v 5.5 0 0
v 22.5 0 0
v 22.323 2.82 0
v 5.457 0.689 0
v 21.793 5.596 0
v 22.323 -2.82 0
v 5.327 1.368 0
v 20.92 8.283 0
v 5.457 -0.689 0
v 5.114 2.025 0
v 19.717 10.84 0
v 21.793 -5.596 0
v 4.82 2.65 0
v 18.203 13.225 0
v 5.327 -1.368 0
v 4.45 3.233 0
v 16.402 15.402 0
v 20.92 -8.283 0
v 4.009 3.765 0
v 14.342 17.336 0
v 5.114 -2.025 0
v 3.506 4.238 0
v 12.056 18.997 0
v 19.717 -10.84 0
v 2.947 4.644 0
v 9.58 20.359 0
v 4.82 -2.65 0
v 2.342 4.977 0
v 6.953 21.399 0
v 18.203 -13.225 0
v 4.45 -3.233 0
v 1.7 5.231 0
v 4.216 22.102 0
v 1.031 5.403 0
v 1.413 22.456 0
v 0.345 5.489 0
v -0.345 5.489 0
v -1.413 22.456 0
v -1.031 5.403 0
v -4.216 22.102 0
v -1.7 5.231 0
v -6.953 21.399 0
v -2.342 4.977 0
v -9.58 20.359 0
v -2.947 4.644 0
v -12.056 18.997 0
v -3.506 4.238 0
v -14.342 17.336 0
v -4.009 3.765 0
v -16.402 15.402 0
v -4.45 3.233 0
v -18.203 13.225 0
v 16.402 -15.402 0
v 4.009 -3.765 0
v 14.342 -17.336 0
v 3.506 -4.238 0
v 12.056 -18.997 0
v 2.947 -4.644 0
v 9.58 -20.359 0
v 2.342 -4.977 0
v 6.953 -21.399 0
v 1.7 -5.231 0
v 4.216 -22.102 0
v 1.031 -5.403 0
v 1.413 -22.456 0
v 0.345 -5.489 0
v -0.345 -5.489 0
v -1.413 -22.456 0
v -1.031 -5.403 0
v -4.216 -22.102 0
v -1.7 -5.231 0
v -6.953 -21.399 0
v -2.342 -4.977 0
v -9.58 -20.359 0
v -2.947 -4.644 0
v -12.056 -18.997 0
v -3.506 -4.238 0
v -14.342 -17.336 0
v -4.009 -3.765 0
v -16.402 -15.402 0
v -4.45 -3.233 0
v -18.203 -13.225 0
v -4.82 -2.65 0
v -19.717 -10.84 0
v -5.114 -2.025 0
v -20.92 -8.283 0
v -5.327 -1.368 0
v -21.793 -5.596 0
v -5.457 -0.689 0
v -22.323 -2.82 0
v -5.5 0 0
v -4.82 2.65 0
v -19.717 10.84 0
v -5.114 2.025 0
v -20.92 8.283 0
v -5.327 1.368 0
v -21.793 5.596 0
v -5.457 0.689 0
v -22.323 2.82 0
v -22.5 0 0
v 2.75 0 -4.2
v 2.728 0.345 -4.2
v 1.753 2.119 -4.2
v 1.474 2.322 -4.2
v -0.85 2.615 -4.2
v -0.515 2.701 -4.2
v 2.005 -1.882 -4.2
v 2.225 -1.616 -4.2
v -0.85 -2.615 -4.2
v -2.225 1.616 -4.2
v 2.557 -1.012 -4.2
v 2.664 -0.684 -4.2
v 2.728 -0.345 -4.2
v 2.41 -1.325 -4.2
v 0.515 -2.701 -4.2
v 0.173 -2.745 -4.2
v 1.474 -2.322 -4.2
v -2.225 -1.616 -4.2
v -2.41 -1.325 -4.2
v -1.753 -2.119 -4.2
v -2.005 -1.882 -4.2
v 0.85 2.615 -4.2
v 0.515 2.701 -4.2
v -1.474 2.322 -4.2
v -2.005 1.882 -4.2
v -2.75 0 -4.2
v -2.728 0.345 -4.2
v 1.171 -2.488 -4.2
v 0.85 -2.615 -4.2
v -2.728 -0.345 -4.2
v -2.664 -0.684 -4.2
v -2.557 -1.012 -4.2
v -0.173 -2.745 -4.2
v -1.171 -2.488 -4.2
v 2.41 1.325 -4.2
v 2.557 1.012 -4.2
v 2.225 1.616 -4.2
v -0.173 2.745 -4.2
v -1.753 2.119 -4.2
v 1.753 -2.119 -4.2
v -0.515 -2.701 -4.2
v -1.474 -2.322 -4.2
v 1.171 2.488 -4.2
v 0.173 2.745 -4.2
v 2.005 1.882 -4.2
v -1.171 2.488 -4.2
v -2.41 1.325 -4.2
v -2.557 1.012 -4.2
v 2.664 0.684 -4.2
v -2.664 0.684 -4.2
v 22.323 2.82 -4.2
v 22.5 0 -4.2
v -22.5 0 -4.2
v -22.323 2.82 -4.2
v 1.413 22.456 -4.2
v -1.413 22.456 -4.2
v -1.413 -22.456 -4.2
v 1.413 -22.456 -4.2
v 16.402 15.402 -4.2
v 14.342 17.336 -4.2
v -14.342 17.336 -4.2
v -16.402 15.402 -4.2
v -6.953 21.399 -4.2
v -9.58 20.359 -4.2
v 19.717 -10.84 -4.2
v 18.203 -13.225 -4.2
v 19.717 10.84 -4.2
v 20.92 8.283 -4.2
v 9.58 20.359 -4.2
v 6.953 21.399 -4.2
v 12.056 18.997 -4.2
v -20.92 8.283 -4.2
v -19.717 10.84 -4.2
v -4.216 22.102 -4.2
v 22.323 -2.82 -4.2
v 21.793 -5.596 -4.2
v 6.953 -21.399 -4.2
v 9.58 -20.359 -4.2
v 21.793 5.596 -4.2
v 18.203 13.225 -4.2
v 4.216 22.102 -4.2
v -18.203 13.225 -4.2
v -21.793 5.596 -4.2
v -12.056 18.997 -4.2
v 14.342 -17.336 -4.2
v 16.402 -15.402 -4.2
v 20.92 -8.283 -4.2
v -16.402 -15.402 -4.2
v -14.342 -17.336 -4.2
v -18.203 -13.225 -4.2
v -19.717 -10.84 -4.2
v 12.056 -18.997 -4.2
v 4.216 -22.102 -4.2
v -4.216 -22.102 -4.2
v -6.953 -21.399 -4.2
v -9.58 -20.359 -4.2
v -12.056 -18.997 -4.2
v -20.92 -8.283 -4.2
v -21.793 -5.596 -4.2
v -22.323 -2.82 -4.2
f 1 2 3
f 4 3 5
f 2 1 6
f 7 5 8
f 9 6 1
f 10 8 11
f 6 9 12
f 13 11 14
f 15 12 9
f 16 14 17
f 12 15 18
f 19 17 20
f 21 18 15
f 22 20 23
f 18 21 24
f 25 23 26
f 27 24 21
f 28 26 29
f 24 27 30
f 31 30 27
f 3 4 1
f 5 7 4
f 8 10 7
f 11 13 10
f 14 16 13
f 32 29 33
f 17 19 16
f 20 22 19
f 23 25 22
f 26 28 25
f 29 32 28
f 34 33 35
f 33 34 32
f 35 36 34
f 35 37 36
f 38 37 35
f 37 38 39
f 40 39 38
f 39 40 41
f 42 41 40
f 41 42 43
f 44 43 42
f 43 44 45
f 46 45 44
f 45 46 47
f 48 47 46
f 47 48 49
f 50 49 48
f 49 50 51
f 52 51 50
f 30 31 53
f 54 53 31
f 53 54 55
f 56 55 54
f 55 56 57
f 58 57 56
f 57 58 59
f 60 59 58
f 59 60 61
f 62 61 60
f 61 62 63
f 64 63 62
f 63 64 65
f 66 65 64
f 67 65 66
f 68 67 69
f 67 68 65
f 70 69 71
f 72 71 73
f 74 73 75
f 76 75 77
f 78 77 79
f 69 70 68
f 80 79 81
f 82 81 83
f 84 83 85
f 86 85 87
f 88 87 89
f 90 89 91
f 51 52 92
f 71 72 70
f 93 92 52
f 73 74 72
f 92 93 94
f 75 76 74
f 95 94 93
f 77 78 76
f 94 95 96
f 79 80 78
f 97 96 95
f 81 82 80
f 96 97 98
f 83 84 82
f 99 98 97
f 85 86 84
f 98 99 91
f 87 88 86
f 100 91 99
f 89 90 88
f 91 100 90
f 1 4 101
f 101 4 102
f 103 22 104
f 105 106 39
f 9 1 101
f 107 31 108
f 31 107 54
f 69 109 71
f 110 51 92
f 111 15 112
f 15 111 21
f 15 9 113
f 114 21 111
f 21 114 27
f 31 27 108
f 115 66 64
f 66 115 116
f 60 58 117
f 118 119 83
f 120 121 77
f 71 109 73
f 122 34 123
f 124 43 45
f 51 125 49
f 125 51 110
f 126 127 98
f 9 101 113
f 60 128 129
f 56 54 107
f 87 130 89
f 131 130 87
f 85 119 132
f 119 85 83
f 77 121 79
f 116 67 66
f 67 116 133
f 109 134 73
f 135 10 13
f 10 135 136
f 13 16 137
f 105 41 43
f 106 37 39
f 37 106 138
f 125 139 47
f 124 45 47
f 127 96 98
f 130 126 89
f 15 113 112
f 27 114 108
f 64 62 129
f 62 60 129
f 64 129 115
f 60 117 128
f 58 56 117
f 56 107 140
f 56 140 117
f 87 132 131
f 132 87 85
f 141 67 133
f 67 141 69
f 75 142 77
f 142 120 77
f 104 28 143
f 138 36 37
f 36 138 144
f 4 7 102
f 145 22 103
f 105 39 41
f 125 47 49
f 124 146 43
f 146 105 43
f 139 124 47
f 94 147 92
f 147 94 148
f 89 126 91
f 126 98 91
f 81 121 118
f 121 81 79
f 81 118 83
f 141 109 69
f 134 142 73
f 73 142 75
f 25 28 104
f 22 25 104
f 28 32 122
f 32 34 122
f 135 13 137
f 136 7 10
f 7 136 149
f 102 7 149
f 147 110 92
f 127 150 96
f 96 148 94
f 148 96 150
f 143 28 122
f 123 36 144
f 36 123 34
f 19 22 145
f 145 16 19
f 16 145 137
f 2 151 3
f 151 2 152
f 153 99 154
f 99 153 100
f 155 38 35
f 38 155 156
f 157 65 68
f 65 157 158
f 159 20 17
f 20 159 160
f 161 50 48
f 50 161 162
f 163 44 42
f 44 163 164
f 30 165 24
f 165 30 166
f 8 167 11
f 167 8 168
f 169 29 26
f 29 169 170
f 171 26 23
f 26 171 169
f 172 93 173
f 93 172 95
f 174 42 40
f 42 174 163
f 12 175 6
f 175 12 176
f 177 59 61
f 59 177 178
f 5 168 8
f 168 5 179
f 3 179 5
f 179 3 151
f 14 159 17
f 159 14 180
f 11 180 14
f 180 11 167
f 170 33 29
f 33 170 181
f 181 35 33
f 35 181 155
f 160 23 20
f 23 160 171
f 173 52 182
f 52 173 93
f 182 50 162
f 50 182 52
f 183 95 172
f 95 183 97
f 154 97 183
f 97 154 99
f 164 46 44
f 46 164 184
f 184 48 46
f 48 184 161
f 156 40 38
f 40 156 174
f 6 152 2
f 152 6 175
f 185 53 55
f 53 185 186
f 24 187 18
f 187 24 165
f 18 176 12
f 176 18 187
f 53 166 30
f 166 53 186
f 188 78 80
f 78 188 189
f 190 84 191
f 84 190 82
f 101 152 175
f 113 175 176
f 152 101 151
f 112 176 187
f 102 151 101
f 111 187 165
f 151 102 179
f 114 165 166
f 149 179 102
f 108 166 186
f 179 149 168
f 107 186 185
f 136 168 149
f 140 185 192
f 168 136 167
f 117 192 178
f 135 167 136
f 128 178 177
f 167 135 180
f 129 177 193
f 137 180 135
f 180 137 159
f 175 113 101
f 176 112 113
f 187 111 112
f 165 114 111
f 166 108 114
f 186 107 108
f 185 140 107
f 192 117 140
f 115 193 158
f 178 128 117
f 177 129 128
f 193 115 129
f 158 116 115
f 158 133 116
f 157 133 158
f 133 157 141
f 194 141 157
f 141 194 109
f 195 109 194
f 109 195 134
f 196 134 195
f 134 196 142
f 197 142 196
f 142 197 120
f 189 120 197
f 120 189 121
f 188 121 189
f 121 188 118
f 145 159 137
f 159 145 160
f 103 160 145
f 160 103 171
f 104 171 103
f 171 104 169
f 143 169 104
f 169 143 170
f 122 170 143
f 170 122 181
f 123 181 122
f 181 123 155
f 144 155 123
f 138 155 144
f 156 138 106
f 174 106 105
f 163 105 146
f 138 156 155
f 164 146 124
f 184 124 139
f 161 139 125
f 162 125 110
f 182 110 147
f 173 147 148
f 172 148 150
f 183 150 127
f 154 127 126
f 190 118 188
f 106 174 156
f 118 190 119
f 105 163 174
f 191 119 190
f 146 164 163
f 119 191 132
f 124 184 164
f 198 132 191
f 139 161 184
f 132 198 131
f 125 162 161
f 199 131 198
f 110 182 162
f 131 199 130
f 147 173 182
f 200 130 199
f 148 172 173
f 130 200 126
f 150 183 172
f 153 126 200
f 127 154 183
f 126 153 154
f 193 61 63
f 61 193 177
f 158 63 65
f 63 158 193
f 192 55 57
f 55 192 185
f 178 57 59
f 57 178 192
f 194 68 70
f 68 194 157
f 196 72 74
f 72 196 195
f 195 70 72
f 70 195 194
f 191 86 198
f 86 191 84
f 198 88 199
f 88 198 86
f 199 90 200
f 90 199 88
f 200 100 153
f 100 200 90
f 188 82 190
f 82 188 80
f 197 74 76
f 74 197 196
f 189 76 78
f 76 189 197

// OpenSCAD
$fn = 50;


difference() {
	union() {
		translate(v = [0, 0, -4.2000000000]) {
			cylinder(h = 4.2000000000, r = 22.5000000000);
		}
	}
	union() {
		translate(v = [0, 0, 0]) {
			rotate(a = [0, 0, 0]) {
				difference() {
					union() {
						translate(v = [0, 0, -7.2000000000]) {
							cylinder(h = 7.2000000000, r = 2.2500000000);
						}
						translate(v = [0, 0, -4.2000000000]) {
							cylinder(h = 4.2000000000, r1 = 2.7500000000, r2 = 5.5000000000);
						}
						translate(v = [0, 0, -7.2000000000]) {
							cylinder(h = 7.2000000000, r = 2.7500000000);
						}
						translate(v = [0, 0, -7.2000000000]) {
							cylinder(h = 7.2000000000, r = 2.2500000000);
						}
					}
					union();
				}
			}
		}
	}
}
